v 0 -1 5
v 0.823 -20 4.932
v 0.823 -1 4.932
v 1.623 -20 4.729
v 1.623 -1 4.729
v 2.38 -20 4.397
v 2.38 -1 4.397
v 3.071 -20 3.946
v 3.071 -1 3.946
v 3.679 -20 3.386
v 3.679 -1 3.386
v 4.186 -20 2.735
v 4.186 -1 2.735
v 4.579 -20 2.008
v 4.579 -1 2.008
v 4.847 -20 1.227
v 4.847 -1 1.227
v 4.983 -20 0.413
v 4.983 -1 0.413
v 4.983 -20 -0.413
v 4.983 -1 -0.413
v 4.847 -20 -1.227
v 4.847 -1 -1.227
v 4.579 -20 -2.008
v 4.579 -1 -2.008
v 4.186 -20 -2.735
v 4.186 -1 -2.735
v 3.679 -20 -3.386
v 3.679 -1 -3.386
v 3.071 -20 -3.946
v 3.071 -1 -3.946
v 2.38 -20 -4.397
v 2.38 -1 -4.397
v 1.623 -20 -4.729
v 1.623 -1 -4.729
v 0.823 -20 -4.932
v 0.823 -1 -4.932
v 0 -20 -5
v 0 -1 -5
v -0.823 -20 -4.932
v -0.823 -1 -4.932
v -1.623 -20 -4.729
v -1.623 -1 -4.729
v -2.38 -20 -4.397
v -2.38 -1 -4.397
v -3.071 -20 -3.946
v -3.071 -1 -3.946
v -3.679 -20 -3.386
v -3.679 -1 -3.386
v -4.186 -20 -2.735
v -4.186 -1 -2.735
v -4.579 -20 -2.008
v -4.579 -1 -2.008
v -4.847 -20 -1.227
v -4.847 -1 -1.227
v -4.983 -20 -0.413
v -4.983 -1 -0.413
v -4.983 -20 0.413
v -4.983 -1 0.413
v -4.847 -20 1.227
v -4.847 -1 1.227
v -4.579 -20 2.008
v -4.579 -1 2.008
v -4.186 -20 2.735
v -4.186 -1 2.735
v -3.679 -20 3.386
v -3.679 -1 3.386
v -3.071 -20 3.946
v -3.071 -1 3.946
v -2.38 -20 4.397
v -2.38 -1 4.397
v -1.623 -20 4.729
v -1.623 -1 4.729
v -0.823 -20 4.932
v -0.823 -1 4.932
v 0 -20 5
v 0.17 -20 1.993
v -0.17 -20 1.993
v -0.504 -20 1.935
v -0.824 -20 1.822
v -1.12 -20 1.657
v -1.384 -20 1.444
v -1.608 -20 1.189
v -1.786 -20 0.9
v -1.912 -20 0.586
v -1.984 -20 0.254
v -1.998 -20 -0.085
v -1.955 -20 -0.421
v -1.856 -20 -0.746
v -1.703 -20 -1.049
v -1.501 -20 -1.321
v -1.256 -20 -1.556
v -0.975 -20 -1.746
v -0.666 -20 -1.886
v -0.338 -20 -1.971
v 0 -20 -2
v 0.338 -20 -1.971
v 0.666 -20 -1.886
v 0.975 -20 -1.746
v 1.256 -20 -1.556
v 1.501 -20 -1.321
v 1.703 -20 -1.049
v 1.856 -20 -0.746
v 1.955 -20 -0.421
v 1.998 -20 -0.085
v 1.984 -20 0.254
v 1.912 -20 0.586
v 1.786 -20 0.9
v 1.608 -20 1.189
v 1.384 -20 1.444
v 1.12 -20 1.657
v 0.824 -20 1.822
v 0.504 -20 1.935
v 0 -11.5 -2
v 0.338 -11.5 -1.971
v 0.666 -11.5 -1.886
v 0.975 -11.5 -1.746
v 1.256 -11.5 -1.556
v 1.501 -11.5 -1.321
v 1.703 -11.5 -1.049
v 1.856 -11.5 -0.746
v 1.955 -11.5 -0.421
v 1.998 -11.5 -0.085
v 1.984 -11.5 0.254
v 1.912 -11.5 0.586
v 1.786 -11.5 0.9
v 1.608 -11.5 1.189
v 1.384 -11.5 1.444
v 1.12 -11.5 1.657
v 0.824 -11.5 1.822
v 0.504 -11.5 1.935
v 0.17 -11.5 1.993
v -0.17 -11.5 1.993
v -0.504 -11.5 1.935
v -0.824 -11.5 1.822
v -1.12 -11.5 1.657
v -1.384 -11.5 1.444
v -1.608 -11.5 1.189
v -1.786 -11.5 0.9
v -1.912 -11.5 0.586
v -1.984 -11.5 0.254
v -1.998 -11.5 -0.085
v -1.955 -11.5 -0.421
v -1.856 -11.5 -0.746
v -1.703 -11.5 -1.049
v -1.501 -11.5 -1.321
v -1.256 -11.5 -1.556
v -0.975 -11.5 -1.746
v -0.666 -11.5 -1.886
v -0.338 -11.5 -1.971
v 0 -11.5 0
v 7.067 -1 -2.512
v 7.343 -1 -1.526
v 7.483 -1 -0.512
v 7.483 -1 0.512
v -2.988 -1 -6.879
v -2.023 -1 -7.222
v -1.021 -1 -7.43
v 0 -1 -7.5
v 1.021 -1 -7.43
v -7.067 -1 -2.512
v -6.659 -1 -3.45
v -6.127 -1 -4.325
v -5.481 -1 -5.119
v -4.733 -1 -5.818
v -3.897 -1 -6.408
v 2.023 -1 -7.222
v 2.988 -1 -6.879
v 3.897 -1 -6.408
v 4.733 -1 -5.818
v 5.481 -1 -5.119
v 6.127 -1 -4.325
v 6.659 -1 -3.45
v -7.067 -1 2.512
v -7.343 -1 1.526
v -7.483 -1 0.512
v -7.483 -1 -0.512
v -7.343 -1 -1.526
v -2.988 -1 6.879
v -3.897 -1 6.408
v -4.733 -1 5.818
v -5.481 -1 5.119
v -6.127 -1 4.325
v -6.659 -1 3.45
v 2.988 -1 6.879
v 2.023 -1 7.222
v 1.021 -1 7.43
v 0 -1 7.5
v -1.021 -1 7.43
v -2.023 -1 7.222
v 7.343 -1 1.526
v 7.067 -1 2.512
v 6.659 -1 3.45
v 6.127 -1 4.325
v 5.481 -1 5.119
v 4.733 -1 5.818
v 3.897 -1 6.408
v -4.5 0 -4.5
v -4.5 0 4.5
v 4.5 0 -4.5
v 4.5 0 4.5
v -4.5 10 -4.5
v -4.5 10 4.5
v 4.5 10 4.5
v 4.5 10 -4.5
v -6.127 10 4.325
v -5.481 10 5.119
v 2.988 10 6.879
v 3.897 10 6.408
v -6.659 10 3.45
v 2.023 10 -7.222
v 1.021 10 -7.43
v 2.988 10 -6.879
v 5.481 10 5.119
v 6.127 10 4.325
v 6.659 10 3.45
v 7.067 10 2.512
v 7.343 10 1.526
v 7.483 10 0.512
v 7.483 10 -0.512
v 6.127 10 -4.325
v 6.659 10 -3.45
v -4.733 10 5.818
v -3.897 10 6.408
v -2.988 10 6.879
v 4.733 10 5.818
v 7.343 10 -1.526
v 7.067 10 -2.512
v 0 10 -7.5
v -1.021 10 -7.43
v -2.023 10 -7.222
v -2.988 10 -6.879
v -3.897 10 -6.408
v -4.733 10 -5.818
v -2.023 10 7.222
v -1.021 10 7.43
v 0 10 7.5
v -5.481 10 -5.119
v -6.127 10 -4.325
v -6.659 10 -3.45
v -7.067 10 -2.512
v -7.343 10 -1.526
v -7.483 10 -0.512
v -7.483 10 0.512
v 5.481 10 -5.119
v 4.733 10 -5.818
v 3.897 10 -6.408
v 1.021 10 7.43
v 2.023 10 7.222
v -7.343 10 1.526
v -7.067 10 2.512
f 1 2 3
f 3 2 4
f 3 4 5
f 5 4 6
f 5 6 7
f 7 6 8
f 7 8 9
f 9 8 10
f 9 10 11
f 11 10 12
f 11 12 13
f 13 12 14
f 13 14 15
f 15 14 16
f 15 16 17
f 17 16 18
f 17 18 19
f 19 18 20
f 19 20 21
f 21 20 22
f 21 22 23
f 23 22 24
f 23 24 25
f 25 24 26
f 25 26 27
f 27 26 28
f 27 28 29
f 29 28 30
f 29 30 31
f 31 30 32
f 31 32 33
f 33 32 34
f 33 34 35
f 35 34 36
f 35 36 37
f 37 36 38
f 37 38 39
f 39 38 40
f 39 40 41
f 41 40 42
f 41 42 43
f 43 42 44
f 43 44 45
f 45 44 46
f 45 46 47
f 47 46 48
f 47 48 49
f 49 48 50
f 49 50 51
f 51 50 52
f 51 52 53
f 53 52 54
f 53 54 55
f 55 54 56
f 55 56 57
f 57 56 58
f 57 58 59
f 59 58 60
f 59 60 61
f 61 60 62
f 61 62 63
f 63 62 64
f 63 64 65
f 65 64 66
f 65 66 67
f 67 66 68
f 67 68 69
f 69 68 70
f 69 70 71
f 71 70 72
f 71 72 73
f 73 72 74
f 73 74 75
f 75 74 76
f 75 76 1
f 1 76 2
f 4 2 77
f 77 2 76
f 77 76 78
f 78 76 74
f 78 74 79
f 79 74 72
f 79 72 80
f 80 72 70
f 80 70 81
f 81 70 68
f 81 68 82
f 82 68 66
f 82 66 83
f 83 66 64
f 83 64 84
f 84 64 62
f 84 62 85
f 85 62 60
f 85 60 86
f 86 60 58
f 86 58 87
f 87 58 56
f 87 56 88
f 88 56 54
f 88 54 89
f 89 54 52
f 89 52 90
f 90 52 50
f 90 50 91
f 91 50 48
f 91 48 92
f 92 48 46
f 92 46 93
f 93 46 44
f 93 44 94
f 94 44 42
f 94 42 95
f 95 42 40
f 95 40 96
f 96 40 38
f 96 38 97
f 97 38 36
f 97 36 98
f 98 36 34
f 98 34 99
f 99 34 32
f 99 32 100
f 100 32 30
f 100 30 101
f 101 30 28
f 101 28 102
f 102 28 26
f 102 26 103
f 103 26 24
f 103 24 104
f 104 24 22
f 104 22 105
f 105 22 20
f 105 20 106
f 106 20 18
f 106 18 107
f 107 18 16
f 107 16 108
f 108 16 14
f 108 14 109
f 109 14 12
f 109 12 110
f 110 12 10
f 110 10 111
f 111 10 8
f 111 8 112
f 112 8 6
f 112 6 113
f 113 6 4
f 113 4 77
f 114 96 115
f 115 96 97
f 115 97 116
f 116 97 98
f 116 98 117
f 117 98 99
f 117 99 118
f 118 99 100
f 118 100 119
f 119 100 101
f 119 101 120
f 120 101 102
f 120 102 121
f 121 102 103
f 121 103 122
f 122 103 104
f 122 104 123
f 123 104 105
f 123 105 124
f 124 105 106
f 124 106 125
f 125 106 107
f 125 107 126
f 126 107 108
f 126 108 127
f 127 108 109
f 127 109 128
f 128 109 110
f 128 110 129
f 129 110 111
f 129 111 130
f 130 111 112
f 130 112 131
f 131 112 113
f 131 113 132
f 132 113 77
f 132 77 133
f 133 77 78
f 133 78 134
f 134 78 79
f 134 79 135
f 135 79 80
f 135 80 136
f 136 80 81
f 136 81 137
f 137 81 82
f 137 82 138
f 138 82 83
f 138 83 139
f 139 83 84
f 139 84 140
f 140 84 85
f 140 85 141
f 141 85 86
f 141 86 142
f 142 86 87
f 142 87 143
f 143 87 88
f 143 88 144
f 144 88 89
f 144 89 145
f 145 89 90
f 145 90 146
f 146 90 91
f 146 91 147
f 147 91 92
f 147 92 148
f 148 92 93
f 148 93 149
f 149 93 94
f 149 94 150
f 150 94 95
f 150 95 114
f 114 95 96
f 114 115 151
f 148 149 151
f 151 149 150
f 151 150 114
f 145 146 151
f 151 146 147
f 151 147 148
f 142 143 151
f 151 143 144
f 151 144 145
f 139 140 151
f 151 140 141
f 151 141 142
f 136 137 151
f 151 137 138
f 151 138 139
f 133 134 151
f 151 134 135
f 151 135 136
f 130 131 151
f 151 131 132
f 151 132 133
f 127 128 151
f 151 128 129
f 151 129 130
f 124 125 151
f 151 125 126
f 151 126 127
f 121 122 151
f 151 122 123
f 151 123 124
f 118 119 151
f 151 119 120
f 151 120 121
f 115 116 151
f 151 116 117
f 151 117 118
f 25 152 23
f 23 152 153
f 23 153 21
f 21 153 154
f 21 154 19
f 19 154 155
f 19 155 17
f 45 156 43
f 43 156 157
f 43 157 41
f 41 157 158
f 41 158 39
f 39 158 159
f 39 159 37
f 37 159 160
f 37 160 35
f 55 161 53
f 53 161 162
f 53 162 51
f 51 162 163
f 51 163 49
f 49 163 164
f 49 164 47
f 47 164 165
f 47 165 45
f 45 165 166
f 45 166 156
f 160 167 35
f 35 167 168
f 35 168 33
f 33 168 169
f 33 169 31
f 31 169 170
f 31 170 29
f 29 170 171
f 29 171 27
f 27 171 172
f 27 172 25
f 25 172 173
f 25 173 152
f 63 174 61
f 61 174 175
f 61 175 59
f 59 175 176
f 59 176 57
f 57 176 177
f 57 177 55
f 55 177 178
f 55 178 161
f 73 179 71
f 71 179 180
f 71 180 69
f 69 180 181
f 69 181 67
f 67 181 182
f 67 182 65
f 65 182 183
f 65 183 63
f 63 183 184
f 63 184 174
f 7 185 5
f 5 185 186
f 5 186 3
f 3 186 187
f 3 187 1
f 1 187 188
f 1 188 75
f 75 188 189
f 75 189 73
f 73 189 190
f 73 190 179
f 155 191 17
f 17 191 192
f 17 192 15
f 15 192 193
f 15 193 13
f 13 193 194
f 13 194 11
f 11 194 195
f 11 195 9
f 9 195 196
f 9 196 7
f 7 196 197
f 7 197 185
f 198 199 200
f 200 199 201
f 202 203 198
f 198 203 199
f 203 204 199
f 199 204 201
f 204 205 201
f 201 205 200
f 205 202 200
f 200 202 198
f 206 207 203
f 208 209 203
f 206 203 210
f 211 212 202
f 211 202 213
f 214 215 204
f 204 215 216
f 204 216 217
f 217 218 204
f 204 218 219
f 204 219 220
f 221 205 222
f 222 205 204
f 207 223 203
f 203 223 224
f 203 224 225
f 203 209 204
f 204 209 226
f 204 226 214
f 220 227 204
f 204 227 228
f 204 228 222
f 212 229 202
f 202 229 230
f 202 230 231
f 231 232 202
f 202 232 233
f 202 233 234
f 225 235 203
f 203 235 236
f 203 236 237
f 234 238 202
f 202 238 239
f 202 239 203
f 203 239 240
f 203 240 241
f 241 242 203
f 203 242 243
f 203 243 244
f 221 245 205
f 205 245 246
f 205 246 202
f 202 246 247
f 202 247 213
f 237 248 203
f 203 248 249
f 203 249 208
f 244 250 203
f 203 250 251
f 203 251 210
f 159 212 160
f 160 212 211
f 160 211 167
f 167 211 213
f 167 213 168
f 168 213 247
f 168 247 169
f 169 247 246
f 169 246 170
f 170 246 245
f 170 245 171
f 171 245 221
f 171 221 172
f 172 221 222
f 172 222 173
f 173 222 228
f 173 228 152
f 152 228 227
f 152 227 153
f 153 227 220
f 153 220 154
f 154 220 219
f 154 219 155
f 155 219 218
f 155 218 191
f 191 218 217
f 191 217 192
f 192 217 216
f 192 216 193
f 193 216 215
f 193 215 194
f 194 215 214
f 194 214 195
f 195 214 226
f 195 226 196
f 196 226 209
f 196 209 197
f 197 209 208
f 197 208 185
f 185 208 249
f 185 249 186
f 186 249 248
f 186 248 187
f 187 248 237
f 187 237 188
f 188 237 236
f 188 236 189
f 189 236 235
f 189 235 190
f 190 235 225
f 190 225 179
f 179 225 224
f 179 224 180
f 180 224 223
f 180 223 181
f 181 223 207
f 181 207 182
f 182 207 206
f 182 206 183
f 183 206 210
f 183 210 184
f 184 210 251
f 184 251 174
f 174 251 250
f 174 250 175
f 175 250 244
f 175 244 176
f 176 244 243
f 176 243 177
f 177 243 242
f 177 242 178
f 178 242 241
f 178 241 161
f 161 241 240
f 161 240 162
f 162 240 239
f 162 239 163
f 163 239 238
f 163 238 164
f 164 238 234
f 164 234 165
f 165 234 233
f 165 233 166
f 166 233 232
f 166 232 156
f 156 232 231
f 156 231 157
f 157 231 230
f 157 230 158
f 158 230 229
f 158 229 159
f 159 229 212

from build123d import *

# Parameters (mm, degrees)
SKETCH2_R           = 7.5
SKETCH2_W           = 9
SKETCH2_H           = 9
BOSS_EXTRUDE1_DEPTH = 10
SKETCH2_4_R         = 5
BOSS_EXTRUDE2_DEPTH = 20
SKETCH3_R           = 2
CUT_EXTRUDE1_DEPTH  = 8.5
BOSS_EXTRUDE3_START = 1
SKETCH4_R           = 7.5
BOSS_EXTRUDE3_DEPTH = 1


with BuildPart() as part:
    # Sketch2 → Boss-Extrude1 (new body)
    with BuildSketch(Plane(origin=(0, 0, 0), x_dir=(1, 0, 0), z_dir=(0, 1, 0))):
        Circle(SKETCH2_R)
        Rectangle(SKETCH2_W, SKETCH2_H, mode=Mode.SUBTRACT)
    extrude(amount=BOSS_EXTRUDE1_DEPTH)

    # Sketch2<4> → Boss-Extrude2 (add)
    with BuildSketch(Plane(origin=(0, 0, 0), x_dir=(1, 0, 0), z_dir=(0, 1, 0))):
        Circle(SKETCH2_4_R)
    extrude(amount=-BOSS_EXTRUDE2_DEPTH)

    # Sketch3 → Cut-Extrude1 (cut)
    with BuildSketch(Plane.XZ.offset(20)):
        Circle(SKETCH3_R)
    extrude(amount=-CUT_EXTRUDE1_DEPTH, mode=Mode.SUBTRACT)

    # Sketch4 → Boss-Extrude3 (add)
    with BuildSketch(Plane.XZ.offset(BOSS_EXTRUDE3_START)):
        Circle(SKETCH4_R)
    extrude(amount=-BOSS_EXTRUDE3_DEPTH)


solid = part.part
